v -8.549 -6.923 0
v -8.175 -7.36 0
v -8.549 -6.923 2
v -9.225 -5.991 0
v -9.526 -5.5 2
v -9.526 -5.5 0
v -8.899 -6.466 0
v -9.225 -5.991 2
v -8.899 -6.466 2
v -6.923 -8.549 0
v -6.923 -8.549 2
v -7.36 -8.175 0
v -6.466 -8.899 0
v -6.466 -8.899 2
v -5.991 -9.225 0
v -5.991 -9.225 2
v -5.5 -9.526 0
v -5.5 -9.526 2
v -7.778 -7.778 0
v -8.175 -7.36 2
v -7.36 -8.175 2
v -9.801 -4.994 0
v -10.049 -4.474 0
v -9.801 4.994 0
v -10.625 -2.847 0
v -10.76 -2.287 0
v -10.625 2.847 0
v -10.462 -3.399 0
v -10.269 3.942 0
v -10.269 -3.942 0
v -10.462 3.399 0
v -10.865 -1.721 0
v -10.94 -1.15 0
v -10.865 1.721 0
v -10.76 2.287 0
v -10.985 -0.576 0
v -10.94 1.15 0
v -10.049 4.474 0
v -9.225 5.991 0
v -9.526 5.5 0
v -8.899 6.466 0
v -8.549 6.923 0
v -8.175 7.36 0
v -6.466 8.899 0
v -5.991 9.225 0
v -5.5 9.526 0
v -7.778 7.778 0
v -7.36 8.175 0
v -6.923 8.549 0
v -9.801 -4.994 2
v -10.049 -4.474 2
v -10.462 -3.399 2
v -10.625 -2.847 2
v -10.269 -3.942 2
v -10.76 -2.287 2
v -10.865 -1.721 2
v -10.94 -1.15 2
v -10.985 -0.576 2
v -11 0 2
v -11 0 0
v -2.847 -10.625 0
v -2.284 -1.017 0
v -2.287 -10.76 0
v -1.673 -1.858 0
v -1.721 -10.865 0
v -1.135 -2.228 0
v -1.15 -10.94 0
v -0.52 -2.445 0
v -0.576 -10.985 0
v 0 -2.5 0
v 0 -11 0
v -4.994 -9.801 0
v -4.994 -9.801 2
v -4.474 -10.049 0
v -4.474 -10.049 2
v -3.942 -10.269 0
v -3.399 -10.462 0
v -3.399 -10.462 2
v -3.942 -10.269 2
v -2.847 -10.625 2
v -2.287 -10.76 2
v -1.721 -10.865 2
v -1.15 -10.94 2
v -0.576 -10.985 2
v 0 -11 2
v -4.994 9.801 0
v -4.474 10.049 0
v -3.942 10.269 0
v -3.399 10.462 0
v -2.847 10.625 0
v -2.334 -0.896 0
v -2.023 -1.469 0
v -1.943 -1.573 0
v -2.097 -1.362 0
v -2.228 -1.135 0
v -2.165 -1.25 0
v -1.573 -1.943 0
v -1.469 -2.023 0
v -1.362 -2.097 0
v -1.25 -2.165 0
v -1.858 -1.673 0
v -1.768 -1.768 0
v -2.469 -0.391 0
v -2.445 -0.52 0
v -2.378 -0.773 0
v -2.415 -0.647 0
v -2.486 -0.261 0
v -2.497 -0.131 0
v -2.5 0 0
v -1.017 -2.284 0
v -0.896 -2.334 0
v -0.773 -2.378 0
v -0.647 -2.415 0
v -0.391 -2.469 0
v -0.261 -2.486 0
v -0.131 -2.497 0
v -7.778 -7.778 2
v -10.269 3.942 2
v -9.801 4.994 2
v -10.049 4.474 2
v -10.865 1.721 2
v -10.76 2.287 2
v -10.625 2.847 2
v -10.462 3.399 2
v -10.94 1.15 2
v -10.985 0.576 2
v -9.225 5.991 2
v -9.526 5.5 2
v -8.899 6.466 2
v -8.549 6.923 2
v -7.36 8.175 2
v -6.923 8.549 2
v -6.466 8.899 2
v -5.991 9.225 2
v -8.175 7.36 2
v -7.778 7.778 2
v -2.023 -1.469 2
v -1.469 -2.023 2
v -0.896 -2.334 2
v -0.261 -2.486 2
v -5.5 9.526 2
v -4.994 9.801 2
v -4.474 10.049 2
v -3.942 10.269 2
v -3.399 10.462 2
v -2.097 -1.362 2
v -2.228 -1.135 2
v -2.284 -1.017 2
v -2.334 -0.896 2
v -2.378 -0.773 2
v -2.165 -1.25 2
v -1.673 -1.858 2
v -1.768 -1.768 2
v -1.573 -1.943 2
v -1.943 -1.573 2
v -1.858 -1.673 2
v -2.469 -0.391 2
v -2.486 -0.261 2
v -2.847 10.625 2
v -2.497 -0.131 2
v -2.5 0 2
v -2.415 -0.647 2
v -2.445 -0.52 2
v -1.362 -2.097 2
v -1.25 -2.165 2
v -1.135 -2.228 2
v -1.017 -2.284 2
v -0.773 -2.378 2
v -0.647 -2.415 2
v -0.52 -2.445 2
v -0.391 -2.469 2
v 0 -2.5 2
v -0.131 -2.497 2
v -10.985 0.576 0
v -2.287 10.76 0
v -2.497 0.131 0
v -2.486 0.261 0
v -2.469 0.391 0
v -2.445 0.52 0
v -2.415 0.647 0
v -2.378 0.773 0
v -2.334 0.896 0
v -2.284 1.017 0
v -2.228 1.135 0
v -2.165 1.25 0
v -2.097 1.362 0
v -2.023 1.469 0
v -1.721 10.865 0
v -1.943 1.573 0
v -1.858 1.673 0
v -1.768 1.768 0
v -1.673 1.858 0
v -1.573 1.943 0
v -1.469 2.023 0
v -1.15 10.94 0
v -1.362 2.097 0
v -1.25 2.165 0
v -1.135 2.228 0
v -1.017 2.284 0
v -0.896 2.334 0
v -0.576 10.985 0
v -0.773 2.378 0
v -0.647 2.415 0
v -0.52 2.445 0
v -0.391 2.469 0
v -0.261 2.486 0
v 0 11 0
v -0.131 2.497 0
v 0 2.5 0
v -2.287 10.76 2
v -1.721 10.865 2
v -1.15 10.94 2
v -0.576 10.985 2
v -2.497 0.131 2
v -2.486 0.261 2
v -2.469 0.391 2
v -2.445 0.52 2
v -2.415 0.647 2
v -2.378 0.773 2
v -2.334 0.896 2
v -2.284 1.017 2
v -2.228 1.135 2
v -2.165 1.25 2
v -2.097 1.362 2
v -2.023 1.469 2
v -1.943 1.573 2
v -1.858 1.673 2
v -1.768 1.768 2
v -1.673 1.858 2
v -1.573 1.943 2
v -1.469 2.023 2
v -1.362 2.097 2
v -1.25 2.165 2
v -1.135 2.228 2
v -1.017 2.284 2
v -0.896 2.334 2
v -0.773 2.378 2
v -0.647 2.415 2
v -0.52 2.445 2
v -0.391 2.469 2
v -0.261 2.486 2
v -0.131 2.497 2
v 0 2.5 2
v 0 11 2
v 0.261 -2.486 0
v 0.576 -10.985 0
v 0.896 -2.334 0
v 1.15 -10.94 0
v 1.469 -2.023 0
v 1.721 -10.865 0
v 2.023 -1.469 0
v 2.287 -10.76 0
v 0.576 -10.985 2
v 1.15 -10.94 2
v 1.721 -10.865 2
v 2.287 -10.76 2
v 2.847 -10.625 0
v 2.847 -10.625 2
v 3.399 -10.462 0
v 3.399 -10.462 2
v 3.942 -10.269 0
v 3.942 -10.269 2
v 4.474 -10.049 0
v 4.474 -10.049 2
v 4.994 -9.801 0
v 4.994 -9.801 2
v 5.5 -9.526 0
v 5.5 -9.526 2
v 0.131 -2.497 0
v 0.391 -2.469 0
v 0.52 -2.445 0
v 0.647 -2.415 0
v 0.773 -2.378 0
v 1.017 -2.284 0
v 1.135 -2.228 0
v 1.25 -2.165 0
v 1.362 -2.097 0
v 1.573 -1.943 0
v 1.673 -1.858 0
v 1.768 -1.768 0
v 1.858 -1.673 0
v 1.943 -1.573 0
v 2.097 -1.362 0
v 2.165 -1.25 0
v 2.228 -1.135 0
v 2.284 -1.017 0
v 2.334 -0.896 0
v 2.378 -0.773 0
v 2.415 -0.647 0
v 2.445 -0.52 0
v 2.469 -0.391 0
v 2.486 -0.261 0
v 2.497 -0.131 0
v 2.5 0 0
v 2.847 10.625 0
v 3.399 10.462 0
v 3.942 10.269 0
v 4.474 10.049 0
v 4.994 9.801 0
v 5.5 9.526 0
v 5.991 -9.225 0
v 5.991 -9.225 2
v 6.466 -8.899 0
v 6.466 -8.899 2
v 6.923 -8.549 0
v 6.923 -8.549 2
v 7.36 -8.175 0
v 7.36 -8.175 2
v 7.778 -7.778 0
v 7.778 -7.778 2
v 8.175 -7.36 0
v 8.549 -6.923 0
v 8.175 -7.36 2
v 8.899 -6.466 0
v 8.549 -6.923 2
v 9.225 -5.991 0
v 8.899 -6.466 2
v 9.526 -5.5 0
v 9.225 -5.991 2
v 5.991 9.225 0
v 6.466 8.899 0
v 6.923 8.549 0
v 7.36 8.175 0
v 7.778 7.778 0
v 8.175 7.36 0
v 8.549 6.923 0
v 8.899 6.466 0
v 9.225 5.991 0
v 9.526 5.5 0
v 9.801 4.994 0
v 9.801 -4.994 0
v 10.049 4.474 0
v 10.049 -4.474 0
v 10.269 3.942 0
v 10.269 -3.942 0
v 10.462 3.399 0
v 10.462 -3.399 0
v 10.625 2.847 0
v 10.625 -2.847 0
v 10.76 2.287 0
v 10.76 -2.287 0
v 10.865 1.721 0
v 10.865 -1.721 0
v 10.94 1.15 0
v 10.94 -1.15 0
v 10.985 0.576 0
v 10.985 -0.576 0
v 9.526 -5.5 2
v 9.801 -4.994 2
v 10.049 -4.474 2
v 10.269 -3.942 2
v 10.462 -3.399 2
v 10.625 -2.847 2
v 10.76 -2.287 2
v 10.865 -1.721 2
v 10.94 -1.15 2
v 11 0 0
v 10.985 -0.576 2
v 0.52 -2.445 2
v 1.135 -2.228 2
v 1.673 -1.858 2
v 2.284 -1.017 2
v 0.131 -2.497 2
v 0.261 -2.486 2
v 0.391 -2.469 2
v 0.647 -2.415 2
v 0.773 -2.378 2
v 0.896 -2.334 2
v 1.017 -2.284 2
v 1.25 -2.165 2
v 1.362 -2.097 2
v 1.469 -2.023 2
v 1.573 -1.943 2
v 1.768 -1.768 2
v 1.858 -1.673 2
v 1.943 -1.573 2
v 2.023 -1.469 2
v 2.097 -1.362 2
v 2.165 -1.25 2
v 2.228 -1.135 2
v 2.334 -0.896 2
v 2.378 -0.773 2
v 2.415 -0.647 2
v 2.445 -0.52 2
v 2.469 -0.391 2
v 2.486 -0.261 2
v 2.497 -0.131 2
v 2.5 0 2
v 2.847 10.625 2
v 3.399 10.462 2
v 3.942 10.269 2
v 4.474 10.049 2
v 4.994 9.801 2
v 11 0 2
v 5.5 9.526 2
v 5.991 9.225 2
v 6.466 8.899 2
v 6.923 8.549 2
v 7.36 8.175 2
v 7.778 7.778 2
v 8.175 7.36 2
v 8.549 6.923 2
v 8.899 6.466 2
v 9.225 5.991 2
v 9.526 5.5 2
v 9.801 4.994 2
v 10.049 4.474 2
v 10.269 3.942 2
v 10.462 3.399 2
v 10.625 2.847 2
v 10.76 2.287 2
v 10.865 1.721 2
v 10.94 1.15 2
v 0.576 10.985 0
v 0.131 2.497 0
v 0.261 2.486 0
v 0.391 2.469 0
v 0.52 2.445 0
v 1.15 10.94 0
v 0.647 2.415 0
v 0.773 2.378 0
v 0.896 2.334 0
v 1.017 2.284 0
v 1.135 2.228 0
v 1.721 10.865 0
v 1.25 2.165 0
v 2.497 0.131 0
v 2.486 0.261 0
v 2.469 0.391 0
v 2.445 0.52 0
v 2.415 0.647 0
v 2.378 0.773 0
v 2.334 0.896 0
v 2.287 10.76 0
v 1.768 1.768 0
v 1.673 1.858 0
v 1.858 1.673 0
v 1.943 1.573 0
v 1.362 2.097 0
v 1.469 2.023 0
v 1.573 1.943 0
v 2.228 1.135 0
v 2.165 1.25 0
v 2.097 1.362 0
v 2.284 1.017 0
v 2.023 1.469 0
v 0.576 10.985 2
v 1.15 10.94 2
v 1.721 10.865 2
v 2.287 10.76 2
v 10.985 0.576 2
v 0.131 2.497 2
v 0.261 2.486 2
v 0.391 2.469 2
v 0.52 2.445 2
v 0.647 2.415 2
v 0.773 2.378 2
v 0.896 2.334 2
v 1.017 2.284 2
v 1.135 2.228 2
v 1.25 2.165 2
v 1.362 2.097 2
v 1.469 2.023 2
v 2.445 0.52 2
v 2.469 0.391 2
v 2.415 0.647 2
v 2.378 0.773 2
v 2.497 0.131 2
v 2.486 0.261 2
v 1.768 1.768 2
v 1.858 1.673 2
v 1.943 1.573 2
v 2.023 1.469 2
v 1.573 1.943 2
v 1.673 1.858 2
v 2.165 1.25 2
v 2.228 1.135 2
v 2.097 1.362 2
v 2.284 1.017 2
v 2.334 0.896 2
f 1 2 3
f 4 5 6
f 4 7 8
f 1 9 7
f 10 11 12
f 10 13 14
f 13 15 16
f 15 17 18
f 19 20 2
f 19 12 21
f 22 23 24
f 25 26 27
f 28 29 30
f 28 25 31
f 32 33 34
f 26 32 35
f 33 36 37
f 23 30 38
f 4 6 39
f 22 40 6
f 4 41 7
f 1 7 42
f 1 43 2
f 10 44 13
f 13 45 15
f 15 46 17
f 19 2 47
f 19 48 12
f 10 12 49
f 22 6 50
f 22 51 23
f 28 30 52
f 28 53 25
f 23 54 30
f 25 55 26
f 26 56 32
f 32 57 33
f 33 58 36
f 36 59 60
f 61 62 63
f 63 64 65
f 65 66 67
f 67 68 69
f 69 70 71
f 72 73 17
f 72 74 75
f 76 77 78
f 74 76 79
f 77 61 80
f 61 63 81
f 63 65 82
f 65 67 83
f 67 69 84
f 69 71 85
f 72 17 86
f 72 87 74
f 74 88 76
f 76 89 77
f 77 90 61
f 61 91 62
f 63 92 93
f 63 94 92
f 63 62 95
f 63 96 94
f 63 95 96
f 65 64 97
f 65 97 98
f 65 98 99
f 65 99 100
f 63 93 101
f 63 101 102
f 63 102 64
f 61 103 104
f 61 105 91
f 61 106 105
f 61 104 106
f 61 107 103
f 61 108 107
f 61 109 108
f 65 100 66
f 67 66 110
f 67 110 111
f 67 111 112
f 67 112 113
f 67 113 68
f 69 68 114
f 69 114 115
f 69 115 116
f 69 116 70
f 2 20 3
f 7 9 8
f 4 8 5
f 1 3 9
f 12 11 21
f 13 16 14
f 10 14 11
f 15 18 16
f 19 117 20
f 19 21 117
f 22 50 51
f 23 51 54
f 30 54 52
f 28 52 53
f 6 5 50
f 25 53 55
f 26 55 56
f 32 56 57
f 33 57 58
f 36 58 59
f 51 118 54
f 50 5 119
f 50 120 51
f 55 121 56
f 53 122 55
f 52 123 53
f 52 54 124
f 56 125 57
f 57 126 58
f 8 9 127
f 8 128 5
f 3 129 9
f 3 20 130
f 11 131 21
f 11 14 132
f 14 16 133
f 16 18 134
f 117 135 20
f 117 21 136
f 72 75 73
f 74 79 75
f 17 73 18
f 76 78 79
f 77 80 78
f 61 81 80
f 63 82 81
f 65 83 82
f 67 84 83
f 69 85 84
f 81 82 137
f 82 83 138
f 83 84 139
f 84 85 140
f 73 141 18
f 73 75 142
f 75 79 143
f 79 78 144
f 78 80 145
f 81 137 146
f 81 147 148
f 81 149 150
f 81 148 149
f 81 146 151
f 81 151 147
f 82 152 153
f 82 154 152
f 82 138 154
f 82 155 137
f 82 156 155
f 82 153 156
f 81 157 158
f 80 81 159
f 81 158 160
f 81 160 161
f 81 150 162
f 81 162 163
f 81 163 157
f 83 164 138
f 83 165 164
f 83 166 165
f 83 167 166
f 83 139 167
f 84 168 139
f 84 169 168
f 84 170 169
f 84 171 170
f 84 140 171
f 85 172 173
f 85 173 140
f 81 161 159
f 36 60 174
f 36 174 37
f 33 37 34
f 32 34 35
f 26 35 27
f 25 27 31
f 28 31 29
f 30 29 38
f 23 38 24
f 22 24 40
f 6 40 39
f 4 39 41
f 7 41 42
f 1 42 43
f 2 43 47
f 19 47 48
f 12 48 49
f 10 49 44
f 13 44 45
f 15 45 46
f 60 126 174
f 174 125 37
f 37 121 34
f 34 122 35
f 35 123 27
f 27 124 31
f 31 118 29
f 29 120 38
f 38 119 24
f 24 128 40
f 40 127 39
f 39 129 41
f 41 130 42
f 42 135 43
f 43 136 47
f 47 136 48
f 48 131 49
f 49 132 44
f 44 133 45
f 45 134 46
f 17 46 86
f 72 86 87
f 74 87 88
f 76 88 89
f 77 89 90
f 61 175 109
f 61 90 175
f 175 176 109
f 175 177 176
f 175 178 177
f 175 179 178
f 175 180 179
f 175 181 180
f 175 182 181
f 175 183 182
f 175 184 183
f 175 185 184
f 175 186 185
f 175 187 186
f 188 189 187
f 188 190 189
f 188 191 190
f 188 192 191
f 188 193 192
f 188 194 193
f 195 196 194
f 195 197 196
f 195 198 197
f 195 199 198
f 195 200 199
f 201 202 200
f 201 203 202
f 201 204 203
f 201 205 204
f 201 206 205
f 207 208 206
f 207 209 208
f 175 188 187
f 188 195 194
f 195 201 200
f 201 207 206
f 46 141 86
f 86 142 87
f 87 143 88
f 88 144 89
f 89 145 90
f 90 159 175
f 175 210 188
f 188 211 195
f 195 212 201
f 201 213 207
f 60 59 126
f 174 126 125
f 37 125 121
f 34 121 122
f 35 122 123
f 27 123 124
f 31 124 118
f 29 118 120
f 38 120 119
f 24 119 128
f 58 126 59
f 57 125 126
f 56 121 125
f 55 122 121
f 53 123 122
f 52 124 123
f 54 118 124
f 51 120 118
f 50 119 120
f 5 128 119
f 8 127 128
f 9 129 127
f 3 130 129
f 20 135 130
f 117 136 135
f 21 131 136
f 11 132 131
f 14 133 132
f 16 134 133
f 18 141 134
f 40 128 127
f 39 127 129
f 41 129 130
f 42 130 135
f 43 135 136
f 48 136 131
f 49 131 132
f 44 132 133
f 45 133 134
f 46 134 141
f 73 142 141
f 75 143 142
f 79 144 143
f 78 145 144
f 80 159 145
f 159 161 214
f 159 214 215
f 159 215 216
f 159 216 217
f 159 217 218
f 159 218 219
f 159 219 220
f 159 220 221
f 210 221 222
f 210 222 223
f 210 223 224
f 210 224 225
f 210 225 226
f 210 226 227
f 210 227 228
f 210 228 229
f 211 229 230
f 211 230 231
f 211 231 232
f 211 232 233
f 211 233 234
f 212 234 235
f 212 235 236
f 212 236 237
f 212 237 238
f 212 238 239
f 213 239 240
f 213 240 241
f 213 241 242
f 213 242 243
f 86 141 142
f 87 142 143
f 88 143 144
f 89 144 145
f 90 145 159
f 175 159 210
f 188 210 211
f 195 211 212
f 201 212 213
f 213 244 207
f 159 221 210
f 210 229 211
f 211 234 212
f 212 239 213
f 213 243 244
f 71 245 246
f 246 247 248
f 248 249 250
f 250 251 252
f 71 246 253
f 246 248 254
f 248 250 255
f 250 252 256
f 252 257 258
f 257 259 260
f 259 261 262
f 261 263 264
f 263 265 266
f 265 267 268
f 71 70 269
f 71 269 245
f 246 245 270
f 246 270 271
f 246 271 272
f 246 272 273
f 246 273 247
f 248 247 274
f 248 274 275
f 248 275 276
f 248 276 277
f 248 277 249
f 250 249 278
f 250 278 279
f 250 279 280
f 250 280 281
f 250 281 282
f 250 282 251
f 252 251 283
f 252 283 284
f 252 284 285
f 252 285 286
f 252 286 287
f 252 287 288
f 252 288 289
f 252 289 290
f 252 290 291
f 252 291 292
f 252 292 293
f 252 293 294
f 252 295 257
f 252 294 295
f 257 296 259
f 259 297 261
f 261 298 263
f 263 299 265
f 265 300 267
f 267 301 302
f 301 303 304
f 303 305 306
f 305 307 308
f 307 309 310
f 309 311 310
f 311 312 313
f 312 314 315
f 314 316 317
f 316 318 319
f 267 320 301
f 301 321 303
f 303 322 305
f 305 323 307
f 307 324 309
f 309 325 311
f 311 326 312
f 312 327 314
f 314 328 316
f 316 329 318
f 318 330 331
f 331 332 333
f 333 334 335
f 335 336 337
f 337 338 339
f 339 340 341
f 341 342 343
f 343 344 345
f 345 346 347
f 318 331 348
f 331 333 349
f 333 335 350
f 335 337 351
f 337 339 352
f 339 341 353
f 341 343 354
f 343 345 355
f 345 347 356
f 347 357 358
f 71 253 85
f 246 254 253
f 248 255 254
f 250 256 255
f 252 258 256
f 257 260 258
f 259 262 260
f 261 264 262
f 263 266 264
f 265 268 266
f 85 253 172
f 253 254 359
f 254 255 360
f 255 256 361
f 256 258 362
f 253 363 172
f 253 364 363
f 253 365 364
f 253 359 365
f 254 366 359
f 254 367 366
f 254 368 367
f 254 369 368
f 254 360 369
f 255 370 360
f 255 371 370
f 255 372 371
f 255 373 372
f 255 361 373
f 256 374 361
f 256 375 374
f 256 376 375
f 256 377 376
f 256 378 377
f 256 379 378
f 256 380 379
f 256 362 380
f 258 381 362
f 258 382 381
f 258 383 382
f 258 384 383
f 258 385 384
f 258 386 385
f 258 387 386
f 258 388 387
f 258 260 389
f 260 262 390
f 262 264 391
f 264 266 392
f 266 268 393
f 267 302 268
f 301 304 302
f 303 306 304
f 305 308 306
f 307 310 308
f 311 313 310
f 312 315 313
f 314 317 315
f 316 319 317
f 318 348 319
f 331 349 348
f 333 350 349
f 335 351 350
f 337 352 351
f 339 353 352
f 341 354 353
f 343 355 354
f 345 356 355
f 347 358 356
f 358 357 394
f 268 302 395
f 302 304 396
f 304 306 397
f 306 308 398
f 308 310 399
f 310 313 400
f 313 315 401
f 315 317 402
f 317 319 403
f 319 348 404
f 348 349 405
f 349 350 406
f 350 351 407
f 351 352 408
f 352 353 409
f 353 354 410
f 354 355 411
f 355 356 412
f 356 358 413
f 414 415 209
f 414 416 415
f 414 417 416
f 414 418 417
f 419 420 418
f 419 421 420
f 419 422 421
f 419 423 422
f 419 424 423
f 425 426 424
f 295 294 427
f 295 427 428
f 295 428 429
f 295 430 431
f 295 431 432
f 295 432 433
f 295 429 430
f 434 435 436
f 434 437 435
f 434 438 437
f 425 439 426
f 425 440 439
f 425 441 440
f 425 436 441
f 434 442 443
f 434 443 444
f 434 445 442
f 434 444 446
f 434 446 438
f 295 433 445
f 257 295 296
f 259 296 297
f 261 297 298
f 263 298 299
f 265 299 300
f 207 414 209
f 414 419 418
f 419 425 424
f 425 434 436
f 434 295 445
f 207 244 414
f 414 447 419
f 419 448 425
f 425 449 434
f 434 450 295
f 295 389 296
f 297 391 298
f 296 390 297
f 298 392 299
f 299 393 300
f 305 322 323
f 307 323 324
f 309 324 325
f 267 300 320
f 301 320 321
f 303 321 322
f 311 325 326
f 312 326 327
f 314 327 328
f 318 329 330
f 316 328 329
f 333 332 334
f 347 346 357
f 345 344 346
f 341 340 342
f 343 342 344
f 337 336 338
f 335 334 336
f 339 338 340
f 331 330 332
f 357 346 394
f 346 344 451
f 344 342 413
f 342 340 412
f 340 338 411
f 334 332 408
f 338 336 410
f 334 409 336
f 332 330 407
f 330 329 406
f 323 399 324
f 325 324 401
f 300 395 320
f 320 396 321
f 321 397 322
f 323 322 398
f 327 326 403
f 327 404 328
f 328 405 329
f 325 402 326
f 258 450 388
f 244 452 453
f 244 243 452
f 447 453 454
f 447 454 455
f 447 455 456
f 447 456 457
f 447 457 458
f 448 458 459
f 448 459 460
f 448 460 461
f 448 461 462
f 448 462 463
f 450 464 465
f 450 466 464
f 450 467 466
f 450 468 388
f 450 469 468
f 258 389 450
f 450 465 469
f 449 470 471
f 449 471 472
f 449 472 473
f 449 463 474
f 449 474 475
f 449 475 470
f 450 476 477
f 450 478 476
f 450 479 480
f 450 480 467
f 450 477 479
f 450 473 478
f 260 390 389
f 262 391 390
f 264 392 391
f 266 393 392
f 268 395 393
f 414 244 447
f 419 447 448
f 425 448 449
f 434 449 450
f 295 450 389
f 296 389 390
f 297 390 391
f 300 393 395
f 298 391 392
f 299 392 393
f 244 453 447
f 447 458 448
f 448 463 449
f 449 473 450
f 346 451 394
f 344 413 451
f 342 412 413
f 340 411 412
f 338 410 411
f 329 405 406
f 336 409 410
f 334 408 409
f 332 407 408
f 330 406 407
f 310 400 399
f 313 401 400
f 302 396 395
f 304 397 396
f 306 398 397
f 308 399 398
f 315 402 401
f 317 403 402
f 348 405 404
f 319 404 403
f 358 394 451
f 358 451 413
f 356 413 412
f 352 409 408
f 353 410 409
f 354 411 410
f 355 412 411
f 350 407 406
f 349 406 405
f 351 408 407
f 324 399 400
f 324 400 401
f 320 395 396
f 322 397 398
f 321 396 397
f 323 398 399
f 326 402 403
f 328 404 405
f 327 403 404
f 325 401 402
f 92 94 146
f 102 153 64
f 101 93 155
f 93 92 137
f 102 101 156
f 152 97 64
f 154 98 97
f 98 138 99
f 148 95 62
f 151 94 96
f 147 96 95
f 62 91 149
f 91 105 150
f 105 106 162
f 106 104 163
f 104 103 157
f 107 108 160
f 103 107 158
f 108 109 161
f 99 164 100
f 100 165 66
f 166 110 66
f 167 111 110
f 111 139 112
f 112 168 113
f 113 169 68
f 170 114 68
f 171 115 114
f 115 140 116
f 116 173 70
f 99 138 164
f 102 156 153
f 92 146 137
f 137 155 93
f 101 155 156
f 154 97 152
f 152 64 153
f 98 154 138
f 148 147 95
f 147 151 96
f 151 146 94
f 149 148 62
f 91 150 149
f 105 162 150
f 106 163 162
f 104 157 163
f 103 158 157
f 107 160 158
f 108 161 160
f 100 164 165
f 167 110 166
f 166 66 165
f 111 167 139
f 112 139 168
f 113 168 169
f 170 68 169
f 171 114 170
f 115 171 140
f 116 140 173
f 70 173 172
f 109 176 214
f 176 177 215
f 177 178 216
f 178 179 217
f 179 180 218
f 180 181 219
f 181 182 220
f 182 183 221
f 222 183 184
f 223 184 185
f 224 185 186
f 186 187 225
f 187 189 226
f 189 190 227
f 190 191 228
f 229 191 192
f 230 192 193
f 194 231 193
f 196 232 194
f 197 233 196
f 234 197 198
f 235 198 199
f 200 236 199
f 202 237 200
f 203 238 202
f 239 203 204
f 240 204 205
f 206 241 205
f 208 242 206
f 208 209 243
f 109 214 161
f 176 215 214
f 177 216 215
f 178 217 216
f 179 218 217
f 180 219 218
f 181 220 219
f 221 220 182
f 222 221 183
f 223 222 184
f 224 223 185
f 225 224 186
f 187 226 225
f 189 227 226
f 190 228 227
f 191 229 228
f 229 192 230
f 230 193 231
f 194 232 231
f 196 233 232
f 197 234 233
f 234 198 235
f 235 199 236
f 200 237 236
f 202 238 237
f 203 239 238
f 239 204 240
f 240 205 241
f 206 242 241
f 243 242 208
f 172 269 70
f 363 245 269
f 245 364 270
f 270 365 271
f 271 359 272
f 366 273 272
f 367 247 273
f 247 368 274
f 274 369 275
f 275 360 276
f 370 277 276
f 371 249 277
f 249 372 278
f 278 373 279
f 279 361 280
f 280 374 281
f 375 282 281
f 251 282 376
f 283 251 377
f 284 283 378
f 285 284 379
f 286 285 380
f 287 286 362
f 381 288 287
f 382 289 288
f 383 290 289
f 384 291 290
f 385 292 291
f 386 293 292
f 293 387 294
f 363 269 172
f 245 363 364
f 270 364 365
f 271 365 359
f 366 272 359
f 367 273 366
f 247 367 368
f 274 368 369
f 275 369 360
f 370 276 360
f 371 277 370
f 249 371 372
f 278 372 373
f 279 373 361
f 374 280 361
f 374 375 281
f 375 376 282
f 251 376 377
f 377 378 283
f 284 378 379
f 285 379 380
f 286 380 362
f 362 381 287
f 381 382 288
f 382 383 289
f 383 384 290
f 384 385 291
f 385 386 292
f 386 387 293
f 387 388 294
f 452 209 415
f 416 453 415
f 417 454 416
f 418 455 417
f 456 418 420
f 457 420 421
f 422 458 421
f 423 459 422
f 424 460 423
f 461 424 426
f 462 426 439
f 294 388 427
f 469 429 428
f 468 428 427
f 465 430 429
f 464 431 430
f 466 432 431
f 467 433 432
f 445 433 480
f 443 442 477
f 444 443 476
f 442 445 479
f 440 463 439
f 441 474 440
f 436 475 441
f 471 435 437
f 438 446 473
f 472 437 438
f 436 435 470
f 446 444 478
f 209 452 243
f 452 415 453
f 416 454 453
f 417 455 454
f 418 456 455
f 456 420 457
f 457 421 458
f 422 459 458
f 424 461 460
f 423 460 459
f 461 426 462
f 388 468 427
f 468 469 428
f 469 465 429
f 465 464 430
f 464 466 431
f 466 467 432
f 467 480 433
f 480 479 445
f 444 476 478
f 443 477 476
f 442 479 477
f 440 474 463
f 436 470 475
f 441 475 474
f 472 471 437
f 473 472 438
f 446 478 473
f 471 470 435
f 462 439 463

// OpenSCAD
// file: C:/gh/oomlout_oobb_part_motor_gearbox_wave_drive_version_5/parts/oobb_part_motor_gearbox_wave_drive_version_5_12_to_1_reduction/nema17_reference.scad
// Visual reference matching the previous cycloidal project's 40 mm motor envelope.
// Face is Z=0; motor body extends towards -Z and shaft towards +Z.
// End caps, corner chamfers and connector are illustrative external details.
// This is purchased reference hardware, never a printable gearbox component.
module nema17_outline(width=42.3,depth=6,chamfer=3) {
    w=width/2;
    linear_extrude(depth) polygon([
        [-w+chamfer,-w],[w-chamfer,-w],[w,-w+chamfer],[w,w-chamfer],
        [w-chamfer,w],[-w+chamfer,w],[-w,w-chamfer],[-w,-w+chamfer]
    ]);
}
module nema17_front() {
    difference() {
        translate([0,0,-motor_cap_depth])
            nema17_outline(motor_body_width,motor_cap_depth,motor_corner_chamfer);
        for(x=[-motor_hole_pitch/2,motor_hole_pitch/2],y=[-motor_hole_pitch/2,motor_hole_pitch/2])
            translate([x,y,-motor_thread_depth]) cylinder(d=3,h=motor_thread_depth+0.01);
        translate([0,0,-motor_cap_depth-0.01]) cylinder(d=motor_shaft_diameter,h=motor_cap_depth+0.02);
    }
}
module nema17_stator() {
    translate([0,0,-motor_body_depth+motor_cap_depth])
        nema17_outline(motor_body_width,motor_body_depth-2*motor_cap_depth,motor_corner_chamfer);
}
module nema17_rear() {
    difference() {
        translate([0,0,-motor_body_depth])
            nema17_outline(motor_body_width,motor_cap_depth,motor_corner_chamfer);
        for(x=[-motor_hole_pitch/2,motor_hole_pitch/2],y=[-motor_hole_pitch/2,motor_hole_pitch/2])
            translate([x,y,-motor_body_depth-0.01]) cylinder(d=4.5,h=1.2);
    }
}
module nema17_pilot() {
    difference() {
        cylinder(d=motor_pilot_diameter,h=motor_pilot_height);
        translate([0,0,-0.01]) cylinder(d=motor_shaft_diameter,h=motor_pilot_height+0.02);
    }
}
module nema17_shaft() {
    linear_extrude(motor_shaft_length) intersection() {
        circle(d=motor_shaft_diameter);
        translate([-10,-10]) square([10+motor_shaft_diameter/2-motor_shaft_flat_depth,20]);
    }
}
module nema17_connector() {
    // Indicative connector envelope; actual cable exit depends on motor model.
    translate([-7,motor_body_width/2-1,-motor_body_depth+motor_cap_depth])
        cube([14,5,7]);
}
module nema17_reference() {
    color("Silver") { nema17_front(); nema17_rear(); nema17_pilot(); nema17_shaft(); }
    color([0.08,0.08,0.08]) nema17_stator();
    color([0.2,0.2,0.2]) nema17_connector();
}
// file: C:/gh/oomlout_oobb_part_motor_gearbox_wave_drive_version_5/parts/oobb_part_motor_gearbox_wave_drive_version_5_12_to_1_reduction/motor_reference_parameters.scad
// Purchased motor envelope. Recipe defines body, shaft and mounting dimensions.
motor_body_depth = 40.0;
motor_shaft_length = 24.0;
motor_hole_pitch = 31.0;
motor_thread_depth = 6.0;
motor_pilot_diameter = 22.0;
motor_pilot_height = 2.0;
motor_shaft_end_clearance = 0.5;
motor_thread_engagement = 5.2;
motor_shaft_diameter = 5.0;
motor_body_width = 42.3;
motor_cap_depth = 6.0;
motor_corner_chamfer = 3.0;
motor_shaft_flat_depth = 0.5;
motor_face_z = 0.0;
// main file
include <C:/gh/oomlout_oobb_part_motor_gearbox_wave_drive_version_5/parts/oobb_part_motor_gearbox_wave_drive_version_5_12_to_1_reduction/motor_reference_parameters.scad>
include <C:/gh/oomlout_oobb_part_motor_gearbox_wave_drive_version_5/parts/oobb_part_motor_gearbox_wave_drive_version_5_12_to_1_reduction/nema17_reference.scad>
$fn=120;
nema17_pilot();
